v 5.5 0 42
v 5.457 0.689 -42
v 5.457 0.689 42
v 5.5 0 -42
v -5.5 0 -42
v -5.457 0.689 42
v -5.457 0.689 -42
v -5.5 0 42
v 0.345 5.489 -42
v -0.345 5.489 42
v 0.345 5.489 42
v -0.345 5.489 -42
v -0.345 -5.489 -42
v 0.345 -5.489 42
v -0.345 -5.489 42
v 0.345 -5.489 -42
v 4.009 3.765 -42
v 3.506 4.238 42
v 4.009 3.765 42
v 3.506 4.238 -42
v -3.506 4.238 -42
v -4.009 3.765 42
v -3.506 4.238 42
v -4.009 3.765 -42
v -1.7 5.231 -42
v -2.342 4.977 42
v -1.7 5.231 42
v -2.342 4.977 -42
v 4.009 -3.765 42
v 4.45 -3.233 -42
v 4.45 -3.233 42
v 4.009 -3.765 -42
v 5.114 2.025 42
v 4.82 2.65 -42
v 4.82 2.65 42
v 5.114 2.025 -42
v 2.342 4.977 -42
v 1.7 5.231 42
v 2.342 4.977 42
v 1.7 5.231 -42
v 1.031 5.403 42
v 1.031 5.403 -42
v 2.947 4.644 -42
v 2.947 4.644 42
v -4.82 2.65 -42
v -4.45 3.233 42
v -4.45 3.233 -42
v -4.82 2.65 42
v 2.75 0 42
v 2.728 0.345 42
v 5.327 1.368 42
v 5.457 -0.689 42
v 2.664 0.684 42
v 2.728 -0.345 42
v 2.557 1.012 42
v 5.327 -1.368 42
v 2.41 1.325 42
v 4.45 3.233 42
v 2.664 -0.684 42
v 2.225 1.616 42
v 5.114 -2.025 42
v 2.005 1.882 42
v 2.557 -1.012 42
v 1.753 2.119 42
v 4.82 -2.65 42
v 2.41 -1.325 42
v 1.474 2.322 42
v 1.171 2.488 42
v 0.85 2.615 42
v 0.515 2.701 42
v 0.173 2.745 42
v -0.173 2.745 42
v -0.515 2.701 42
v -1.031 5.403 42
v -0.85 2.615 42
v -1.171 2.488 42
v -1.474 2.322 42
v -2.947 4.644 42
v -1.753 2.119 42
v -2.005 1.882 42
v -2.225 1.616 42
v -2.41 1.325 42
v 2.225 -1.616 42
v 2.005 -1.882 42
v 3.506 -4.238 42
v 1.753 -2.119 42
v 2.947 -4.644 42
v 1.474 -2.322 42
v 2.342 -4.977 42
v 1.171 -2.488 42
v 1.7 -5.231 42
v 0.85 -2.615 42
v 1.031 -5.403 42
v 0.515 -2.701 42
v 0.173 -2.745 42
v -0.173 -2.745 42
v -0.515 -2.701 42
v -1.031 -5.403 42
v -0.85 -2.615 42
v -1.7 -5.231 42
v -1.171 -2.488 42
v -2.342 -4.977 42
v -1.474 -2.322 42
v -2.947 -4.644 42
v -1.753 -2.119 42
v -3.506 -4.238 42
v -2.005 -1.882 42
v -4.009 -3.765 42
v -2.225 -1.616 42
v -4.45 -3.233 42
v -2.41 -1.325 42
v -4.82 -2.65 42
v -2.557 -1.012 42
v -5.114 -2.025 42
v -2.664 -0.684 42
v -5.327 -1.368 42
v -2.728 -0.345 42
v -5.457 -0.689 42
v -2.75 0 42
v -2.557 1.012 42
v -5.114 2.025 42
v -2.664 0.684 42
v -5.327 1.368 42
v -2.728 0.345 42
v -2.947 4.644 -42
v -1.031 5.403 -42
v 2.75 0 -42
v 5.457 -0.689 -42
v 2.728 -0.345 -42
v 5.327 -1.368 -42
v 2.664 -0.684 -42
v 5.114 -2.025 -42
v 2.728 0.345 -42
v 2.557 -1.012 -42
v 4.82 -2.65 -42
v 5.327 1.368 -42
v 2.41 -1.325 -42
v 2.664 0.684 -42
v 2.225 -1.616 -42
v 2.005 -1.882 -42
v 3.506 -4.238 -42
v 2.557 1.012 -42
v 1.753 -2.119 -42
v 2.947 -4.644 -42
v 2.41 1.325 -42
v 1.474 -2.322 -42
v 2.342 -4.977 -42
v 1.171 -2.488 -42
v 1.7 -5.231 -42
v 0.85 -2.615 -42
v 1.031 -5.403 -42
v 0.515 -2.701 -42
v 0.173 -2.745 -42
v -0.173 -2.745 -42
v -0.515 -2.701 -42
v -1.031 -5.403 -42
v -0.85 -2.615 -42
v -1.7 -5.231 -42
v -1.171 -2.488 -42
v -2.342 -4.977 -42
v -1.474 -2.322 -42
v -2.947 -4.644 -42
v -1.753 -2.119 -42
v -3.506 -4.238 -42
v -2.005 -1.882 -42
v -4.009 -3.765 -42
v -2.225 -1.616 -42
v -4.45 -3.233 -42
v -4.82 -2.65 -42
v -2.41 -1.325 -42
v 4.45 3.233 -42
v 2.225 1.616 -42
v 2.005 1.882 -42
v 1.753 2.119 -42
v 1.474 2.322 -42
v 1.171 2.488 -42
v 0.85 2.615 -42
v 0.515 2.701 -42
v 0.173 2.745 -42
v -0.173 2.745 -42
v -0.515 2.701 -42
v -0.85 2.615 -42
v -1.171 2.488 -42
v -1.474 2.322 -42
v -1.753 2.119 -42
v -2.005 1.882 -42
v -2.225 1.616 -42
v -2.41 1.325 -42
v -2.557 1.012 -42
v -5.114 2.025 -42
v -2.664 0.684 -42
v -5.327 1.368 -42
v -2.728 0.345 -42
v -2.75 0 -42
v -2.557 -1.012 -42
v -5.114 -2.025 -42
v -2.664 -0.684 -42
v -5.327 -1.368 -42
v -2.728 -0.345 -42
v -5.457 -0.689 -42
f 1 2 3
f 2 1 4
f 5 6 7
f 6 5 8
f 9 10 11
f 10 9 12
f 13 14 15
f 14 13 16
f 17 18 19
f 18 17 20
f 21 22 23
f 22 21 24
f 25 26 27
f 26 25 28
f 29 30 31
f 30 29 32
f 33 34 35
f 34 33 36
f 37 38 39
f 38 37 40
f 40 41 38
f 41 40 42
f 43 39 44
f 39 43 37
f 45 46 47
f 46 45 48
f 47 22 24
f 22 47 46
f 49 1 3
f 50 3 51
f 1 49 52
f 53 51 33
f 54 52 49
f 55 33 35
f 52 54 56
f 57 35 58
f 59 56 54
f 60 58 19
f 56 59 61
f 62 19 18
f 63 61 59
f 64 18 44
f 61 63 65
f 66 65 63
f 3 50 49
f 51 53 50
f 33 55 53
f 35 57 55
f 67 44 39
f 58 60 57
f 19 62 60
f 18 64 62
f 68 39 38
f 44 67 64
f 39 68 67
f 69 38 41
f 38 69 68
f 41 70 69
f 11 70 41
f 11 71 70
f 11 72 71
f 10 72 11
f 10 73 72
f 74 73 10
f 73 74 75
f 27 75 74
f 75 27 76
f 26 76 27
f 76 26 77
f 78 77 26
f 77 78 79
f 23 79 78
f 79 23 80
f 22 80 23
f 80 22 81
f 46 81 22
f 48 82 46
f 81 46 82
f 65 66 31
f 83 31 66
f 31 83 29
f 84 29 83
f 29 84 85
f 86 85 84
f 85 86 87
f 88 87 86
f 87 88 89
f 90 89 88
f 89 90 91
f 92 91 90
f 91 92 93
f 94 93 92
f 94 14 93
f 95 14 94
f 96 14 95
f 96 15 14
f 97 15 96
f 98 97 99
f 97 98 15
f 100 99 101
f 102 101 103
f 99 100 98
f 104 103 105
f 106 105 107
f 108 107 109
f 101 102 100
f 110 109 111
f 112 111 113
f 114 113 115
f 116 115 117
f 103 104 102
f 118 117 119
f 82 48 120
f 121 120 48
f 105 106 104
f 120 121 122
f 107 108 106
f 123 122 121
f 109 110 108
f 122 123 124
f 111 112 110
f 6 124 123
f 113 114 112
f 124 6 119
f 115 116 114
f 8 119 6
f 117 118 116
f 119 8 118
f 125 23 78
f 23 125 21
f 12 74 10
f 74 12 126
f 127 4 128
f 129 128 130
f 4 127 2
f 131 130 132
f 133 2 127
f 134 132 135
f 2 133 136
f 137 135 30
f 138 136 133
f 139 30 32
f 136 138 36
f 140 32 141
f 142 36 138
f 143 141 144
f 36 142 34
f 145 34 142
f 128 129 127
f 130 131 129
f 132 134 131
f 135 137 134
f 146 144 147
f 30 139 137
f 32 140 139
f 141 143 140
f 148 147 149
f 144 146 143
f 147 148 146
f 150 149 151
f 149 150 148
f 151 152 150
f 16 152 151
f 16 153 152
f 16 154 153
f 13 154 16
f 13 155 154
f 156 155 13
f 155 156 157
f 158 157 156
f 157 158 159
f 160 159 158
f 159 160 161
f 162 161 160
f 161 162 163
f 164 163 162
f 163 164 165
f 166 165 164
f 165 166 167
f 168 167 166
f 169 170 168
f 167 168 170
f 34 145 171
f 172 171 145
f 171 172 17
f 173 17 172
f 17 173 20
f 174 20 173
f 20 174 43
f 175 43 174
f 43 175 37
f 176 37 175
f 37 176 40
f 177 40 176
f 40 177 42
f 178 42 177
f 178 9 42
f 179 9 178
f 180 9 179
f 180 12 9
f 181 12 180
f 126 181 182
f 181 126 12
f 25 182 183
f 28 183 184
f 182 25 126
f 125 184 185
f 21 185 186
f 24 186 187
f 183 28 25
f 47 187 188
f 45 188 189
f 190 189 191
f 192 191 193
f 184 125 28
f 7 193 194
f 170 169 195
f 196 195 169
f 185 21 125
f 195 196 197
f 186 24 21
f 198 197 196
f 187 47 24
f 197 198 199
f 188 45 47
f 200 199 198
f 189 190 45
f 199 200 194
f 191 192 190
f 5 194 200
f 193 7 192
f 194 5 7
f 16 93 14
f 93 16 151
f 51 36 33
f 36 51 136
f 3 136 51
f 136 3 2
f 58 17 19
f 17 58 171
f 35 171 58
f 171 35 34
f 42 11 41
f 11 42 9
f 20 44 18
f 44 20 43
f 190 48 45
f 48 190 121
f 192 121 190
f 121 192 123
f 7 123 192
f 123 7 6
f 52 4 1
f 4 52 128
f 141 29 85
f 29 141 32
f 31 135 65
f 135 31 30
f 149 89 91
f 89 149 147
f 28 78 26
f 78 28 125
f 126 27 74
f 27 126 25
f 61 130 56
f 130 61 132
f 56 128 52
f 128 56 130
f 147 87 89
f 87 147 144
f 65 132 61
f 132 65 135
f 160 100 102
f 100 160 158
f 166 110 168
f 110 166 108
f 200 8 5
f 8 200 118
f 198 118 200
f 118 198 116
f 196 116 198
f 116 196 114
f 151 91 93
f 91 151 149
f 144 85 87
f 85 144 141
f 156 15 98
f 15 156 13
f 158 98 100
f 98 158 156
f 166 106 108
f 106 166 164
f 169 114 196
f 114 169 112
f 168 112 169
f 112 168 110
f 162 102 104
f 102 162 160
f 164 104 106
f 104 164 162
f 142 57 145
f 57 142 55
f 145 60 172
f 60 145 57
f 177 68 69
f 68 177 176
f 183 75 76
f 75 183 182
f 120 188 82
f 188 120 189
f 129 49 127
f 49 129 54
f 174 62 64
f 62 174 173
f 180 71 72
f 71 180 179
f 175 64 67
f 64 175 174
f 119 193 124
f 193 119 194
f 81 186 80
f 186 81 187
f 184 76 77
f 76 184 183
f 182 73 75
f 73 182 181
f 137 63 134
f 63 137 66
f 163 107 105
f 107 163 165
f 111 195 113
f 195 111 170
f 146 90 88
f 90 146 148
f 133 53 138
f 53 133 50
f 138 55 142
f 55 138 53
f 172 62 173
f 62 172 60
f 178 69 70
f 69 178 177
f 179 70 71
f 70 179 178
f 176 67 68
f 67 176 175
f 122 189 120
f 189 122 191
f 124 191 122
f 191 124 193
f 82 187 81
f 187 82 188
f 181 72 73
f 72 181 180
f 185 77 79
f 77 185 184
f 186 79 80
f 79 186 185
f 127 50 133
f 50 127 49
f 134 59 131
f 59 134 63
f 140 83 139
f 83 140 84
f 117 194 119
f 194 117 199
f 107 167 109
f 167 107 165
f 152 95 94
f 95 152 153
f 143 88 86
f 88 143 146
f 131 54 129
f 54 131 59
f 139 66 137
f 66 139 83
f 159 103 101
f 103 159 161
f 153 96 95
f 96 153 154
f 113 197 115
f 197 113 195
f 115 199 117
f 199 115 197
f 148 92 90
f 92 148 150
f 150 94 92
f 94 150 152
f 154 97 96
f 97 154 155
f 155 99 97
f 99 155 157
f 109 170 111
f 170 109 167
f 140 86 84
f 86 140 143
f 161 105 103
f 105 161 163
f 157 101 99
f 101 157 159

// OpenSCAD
$fn = 50;


difference() {
	union() {
		translate(v = [0, 0, -42.0000000000]) {
			cylinder(h = 84, r = 5.5000000000);
		}
	}
	union() {
		translate(v = [0, 0, -100.0000000000]) {
			cylinder(h = 200, r = 2.7500000000);
		}
	}
}
